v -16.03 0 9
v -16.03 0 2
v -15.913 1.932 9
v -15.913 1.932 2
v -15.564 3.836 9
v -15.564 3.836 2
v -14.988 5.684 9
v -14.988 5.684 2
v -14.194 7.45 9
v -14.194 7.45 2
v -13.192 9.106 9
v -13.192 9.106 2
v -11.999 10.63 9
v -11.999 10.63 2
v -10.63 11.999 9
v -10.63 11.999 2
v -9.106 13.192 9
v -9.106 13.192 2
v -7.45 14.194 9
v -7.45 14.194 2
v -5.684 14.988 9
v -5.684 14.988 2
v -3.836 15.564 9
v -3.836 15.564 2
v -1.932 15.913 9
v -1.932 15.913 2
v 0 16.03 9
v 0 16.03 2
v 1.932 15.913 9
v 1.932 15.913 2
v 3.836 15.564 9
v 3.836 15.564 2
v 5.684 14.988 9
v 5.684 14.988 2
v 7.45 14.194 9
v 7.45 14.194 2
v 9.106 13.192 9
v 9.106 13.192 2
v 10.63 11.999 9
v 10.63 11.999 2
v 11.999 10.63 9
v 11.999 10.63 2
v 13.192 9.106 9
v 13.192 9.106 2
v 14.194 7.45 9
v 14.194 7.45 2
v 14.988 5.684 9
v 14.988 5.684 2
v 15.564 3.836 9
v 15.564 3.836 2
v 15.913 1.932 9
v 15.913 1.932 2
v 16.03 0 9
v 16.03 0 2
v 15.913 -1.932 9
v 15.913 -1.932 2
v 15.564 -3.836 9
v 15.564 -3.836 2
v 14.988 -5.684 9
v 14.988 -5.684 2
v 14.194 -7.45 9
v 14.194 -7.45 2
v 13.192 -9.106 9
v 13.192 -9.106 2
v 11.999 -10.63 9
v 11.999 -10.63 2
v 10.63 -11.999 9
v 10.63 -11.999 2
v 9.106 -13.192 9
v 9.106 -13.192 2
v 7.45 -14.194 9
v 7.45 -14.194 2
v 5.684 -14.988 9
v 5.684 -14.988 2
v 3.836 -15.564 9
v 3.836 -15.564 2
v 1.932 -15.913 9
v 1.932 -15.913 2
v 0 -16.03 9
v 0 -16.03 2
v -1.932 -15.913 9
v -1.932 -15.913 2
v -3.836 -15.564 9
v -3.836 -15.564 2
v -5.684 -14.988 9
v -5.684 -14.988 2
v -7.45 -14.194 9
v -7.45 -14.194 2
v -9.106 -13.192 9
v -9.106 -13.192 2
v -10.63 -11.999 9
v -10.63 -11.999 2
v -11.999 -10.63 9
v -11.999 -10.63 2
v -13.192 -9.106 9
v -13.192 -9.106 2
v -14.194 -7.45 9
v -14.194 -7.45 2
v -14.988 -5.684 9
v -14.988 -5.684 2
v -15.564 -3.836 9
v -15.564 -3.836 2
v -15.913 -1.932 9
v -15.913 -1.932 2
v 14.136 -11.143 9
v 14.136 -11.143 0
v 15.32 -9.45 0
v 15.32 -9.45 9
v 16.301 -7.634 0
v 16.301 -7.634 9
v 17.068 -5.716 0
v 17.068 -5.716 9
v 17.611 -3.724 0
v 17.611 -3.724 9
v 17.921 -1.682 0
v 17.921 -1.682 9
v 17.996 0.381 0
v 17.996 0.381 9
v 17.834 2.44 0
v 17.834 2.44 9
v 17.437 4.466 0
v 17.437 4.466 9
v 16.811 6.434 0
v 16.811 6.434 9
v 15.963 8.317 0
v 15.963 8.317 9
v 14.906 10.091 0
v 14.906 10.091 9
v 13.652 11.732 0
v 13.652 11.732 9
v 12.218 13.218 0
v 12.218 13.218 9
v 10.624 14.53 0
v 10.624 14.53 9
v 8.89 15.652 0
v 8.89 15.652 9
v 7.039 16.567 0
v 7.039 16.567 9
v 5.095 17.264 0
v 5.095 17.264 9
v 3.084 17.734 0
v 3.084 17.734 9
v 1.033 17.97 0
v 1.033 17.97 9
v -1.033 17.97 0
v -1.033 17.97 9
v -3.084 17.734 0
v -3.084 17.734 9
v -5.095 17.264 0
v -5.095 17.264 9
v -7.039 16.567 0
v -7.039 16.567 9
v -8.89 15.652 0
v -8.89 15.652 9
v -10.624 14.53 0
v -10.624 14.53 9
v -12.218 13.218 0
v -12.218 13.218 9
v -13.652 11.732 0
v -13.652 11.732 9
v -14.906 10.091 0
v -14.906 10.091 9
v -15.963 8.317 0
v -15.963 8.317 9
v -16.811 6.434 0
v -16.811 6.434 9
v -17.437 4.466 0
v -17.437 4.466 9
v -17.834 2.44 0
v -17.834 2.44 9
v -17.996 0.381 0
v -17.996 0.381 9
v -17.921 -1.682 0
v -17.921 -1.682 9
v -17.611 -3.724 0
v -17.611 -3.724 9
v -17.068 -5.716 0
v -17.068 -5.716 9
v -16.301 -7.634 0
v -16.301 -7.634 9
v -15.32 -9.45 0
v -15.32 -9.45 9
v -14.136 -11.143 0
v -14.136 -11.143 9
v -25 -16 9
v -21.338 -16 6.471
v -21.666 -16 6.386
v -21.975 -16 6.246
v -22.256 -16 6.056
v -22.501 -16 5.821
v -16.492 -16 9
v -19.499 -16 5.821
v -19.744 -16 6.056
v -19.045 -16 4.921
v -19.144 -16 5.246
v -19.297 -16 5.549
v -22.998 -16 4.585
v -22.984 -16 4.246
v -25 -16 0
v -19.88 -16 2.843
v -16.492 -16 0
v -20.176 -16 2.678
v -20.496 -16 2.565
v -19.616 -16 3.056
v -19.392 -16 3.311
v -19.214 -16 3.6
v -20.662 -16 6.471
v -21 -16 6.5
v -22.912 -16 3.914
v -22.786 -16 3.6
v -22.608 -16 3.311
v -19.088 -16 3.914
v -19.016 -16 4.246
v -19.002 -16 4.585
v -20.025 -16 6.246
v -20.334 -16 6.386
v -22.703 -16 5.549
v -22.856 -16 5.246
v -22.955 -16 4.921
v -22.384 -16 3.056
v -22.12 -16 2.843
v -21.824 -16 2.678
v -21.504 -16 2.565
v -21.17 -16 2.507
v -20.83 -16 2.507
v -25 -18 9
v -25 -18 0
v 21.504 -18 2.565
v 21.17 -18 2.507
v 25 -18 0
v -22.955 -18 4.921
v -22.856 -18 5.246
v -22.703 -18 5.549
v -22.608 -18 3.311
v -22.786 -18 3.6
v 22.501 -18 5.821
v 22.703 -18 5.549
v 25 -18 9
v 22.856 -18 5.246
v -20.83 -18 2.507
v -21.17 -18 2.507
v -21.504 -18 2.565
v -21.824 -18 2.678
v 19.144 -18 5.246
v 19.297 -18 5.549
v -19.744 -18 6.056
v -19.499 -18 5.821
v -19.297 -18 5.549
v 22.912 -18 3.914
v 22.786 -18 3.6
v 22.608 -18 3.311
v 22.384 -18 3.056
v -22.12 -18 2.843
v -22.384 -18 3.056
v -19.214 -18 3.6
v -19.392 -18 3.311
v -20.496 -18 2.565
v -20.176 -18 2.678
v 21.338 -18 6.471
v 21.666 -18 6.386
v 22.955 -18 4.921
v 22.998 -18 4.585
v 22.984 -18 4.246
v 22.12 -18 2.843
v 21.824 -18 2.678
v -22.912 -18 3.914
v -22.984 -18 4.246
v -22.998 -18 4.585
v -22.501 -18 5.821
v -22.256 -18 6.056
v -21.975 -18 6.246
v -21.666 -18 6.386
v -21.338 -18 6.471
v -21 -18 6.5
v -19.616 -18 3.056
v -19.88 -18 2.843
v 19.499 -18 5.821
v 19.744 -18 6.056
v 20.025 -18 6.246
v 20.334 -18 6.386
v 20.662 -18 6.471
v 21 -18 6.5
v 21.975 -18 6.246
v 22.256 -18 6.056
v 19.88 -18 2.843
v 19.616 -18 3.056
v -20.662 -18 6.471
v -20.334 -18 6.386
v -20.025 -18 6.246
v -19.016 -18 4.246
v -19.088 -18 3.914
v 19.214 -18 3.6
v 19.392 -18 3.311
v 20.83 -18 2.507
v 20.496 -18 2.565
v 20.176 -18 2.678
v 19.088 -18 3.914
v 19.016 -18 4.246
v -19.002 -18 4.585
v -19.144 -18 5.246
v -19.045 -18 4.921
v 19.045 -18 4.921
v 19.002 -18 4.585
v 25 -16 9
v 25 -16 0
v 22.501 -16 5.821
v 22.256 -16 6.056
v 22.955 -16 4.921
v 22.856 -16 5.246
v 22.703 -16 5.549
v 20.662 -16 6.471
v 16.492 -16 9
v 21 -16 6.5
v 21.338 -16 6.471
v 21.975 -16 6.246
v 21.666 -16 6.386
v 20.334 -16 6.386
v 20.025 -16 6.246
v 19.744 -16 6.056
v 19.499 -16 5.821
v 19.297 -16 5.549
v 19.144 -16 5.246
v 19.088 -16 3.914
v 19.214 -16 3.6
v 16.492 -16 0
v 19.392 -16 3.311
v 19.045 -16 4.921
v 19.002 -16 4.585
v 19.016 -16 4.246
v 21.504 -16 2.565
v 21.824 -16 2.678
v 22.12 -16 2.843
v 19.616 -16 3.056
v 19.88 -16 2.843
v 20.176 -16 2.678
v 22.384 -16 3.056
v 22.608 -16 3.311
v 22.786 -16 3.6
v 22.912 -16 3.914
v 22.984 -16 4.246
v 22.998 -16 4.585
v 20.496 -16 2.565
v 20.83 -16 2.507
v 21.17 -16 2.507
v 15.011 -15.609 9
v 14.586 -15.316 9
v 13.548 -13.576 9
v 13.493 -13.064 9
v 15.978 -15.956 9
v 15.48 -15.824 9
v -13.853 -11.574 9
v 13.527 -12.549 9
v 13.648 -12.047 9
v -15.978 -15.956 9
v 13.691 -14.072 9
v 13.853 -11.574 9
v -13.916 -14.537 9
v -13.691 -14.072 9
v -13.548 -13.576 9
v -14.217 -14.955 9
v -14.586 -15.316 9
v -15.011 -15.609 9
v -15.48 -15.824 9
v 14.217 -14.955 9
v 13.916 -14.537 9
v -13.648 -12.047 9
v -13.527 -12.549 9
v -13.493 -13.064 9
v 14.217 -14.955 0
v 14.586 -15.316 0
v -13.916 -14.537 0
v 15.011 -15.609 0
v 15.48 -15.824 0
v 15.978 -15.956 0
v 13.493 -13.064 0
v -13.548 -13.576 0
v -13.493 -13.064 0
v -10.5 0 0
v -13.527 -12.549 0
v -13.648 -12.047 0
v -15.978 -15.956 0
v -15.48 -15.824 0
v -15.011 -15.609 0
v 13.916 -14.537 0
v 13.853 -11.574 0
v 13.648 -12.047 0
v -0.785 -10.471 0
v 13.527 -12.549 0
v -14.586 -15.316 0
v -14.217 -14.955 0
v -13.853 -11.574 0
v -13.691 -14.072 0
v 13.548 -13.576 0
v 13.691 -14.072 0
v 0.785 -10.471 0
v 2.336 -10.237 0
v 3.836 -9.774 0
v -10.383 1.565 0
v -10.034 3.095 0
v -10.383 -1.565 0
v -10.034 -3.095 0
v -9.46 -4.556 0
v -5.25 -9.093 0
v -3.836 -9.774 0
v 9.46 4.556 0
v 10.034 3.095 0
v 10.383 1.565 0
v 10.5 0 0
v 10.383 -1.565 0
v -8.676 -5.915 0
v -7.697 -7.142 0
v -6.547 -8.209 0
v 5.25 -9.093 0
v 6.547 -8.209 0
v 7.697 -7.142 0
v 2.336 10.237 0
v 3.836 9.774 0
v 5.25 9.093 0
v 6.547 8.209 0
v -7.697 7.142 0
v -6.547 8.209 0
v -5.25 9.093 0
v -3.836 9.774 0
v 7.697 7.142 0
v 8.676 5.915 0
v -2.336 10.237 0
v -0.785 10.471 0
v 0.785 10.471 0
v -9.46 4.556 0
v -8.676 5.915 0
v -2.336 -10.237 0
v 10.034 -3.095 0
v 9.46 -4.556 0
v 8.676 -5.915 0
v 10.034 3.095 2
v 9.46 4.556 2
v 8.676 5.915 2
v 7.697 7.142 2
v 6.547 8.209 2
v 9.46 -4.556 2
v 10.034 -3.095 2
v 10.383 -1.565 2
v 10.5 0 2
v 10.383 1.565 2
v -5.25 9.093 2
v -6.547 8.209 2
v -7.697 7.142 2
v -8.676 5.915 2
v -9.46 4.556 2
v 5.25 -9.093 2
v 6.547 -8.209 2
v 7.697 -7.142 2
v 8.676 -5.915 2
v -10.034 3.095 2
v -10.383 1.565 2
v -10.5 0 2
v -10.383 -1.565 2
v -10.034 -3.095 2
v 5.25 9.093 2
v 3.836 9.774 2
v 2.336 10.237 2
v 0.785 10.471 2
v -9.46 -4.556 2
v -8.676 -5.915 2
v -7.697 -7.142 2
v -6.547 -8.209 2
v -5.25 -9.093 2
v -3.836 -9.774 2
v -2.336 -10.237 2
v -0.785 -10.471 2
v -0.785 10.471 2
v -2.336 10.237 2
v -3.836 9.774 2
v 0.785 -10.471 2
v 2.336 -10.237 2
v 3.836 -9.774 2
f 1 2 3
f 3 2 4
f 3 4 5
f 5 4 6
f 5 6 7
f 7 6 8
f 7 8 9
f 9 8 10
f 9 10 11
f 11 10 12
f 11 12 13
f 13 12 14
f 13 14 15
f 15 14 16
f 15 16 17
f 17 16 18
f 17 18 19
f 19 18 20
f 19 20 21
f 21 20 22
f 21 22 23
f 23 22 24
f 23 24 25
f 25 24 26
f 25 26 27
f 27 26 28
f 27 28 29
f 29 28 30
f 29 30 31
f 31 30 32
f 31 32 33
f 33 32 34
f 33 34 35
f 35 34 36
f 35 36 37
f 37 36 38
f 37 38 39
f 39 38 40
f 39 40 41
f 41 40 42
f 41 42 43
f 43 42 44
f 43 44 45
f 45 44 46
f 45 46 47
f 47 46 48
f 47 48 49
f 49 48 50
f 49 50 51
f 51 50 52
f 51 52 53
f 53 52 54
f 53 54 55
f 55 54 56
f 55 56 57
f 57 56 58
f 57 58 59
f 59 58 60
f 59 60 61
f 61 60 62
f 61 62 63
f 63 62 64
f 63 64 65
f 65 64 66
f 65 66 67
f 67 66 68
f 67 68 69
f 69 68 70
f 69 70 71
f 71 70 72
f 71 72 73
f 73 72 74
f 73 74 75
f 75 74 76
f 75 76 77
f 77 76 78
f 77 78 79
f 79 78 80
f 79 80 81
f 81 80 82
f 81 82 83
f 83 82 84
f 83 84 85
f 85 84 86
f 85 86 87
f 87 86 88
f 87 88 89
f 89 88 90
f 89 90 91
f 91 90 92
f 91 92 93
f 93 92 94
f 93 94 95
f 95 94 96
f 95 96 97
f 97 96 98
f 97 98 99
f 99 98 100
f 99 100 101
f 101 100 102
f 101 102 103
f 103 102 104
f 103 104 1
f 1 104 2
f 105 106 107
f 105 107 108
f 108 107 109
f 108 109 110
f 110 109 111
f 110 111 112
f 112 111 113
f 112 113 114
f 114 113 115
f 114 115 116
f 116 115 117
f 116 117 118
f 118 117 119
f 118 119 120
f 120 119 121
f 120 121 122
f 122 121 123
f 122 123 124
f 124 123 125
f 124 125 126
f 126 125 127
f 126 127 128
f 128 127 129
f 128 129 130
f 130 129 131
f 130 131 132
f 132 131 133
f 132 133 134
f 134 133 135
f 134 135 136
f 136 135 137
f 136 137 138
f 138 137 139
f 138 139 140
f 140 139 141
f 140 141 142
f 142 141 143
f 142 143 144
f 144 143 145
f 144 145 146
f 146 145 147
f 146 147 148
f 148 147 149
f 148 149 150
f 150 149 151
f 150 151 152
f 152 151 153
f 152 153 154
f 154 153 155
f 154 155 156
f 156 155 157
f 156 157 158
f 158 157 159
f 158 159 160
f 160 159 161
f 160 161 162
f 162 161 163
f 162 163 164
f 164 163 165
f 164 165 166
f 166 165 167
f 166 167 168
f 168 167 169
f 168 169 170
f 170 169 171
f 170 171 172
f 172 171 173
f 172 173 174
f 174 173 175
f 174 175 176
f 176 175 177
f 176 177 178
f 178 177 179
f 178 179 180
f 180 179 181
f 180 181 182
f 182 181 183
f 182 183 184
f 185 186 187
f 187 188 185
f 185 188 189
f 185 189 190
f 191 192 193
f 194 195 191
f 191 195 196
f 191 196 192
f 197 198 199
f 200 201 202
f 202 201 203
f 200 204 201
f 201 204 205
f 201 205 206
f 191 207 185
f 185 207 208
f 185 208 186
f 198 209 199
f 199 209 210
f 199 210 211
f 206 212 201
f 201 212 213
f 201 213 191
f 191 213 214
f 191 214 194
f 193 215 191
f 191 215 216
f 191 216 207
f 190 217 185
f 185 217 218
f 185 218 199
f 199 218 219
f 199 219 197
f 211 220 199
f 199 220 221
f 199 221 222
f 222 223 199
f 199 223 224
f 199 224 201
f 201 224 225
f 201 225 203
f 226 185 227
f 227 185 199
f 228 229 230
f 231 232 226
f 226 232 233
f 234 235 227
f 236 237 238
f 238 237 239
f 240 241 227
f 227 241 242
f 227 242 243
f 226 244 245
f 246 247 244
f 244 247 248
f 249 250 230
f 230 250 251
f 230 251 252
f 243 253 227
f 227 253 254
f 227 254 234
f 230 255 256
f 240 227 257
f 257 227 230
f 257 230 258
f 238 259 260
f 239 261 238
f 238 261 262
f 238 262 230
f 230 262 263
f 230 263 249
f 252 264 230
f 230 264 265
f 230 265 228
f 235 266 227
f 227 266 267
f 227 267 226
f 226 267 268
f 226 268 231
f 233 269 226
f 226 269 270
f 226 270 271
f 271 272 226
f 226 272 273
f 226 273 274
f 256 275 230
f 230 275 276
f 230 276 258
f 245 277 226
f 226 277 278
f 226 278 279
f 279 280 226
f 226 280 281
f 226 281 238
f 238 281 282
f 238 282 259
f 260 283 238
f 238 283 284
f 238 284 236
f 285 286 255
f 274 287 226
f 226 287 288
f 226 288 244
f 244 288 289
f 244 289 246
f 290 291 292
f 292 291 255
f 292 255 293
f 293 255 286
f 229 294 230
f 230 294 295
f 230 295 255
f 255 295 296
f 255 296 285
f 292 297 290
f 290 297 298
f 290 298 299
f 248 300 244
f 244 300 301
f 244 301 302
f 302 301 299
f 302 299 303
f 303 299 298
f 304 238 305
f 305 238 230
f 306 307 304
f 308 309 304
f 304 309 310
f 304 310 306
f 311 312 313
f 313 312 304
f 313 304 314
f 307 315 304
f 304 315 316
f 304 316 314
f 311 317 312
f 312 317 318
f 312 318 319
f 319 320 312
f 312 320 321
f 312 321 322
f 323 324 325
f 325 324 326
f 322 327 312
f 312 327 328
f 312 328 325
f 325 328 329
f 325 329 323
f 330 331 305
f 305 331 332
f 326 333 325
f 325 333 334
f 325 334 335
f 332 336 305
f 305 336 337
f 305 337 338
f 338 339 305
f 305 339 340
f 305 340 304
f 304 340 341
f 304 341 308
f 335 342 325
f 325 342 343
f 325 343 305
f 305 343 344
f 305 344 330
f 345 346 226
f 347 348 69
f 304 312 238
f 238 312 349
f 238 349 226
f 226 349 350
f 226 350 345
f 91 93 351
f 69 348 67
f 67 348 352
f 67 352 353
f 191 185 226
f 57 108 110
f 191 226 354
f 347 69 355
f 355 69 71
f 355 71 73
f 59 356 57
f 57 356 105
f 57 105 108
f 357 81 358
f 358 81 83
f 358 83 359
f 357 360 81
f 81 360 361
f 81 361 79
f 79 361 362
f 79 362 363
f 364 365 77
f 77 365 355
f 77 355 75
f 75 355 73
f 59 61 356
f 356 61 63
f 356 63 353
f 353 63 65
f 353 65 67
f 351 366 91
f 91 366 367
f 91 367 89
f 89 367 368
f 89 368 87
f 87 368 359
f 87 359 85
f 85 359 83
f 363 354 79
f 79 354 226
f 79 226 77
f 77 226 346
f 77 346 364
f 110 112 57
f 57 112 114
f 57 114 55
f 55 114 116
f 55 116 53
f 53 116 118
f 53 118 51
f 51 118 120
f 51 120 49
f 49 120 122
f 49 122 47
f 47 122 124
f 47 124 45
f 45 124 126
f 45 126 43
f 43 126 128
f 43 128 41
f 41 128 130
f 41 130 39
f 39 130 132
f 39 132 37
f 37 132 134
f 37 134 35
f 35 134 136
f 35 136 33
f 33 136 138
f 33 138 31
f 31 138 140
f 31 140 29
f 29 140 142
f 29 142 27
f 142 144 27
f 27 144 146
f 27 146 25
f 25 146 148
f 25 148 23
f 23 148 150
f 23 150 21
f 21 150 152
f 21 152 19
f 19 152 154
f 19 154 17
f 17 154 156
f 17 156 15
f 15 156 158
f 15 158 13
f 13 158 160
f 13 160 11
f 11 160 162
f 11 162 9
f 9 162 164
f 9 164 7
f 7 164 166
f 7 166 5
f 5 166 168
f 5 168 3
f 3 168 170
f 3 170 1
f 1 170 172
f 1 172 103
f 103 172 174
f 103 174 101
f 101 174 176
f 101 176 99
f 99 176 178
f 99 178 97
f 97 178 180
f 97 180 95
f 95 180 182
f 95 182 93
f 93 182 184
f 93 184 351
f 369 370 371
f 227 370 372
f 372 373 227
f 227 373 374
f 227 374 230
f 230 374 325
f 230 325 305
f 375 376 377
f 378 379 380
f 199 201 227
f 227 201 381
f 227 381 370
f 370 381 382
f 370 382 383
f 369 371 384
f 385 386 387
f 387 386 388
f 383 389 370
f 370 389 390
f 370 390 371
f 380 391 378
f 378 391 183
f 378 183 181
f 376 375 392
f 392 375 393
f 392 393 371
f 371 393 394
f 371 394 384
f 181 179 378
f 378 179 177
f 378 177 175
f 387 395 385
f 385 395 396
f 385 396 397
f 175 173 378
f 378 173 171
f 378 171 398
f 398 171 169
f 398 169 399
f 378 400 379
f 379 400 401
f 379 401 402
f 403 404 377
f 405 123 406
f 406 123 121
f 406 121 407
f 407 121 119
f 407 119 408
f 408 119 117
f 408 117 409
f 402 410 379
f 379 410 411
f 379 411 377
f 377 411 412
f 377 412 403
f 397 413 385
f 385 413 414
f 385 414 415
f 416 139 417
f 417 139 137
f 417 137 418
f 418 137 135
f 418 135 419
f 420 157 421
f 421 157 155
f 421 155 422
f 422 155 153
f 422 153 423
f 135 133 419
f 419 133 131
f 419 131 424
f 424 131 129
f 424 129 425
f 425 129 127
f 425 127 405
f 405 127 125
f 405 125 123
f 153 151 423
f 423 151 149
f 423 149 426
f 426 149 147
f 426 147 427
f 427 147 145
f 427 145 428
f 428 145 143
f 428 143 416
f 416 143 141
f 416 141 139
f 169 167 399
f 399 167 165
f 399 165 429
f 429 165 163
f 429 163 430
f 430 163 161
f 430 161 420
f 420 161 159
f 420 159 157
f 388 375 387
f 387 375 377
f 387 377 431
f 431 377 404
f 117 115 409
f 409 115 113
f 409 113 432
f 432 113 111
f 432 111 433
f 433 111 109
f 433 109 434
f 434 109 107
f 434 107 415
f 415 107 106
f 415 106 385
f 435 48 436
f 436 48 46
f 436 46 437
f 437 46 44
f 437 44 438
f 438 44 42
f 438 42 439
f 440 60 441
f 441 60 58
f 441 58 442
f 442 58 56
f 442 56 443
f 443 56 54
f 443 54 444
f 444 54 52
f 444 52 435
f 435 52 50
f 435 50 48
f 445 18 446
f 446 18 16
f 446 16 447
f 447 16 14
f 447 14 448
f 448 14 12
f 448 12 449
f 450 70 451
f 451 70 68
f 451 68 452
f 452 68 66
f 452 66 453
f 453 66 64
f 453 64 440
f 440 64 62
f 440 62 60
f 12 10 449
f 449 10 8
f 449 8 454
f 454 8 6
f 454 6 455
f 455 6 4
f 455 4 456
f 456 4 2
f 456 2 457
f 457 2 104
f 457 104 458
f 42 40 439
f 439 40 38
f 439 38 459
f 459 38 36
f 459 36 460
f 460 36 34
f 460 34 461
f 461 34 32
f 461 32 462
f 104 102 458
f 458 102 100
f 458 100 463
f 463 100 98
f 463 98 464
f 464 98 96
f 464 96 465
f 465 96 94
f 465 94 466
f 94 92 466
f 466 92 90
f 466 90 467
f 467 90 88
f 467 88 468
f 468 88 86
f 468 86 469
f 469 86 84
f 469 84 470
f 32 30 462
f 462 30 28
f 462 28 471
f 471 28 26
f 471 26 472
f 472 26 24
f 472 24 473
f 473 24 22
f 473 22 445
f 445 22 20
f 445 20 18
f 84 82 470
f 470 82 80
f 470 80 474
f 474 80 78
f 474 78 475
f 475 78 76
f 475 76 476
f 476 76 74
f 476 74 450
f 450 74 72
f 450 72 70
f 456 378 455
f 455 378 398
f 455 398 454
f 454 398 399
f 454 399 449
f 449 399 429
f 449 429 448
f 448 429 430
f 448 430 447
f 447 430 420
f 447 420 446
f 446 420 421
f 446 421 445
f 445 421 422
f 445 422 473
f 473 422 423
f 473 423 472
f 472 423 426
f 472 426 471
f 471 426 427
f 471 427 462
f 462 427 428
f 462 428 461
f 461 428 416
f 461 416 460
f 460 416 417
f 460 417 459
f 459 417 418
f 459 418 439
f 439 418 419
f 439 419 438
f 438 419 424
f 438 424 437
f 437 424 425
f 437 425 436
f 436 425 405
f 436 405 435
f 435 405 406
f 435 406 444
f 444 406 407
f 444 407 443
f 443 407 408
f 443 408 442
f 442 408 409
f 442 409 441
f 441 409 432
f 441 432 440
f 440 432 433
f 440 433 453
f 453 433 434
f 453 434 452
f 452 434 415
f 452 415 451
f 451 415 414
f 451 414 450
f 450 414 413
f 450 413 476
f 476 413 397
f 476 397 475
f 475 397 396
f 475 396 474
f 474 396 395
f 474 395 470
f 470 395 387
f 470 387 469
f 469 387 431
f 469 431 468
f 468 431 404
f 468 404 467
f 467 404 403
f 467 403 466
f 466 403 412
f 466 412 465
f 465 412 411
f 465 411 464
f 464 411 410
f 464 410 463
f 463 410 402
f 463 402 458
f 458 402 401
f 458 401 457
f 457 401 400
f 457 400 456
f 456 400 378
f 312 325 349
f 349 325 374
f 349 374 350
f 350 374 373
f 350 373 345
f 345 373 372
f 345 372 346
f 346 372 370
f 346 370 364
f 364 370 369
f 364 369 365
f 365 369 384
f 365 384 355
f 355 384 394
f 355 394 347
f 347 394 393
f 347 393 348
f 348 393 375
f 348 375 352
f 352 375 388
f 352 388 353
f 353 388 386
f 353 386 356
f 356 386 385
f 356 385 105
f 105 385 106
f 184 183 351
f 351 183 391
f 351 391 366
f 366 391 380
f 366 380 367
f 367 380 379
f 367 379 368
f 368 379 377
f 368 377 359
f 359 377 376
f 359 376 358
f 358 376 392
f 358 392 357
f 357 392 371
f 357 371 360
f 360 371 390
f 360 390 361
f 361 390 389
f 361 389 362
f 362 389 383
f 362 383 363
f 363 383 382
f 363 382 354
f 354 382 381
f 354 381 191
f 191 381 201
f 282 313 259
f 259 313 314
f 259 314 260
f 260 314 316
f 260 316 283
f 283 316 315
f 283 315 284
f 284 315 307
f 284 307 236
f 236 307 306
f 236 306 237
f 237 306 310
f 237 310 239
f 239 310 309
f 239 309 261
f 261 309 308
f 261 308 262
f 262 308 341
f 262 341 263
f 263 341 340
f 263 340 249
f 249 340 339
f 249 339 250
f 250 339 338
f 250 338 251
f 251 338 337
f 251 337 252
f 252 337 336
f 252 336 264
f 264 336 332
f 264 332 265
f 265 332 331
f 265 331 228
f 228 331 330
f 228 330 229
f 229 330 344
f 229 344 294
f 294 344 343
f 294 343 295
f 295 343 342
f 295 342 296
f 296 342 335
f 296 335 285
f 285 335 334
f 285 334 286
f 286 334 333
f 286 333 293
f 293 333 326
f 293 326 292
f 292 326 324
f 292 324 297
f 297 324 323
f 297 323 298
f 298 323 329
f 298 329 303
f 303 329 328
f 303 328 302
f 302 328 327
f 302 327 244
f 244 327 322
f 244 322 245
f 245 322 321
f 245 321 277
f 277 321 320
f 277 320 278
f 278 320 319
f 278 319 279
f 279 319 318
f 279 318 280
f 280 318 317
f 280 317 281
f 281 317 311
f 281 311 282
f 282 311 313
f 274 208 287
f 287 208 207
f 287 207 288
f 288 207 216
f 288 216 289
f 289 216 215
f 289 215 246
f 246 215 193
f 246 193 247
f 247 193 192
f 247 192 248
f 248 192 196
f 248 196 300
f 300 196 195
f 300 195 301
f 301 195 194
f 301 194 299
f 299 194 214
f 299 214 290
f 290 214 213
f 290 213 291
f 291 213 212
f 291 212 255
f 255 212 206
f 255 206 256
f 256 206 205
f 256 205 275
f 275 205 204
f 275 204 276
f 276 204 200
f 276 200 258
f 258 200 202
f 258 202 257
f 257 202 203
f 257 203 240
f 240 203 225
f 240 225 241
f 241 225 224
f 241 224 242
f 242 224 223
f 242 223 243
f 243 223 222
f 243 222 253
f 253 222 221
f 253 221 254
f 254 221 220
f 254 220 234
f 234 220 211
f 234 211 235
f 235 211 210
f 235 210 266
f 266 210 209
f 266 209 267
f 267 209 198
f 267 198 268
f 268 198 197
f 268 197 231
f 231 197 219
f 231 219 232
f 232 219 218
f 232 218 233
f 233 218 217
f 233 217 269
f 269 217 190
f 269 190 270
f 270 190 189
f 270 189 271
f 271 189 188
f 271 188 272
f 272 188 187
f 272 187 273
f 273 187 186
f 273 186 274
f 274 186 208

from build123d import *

# Parameters (mm, degrees)
CROQUIS1_R              = 16.03
SALIENTE_EXTRUIR1_DEPTH = 9
CROQUIS2_R              = 10.5
SALIENTE_EXTRUIR2_DEPTH = 2
REDONDEO1_R             = 3
CROQUIS3_R              = 2
CORTAR_EXTRUIR1_DEPTH   = 44.150898021


with BuildPart() as part:
    # Croquis1 → Saliente-Extruir1 (new body)
    with BuildSketch(Plane.XY):
        with BuildLine():
            Line((-8.246211251, -16), (-25, -16))
            Line((-25, -16), (-25, -18))
            Line((-25, -18), (25, -18))
            Line((25, -18), (25, -16))
            Line((25, -16), (8.246211251, -16))
            ThreePointArc((8.246211251, -16), (0, 18), (-8.246211251, -16))
        make_face()
        Circle(CROQUIS1_R, mode=Mode.SUBTRACT)
    extrude(amount=SALIENTE_EXTRUIR1_DEPTH)

    # Croquis2 → Saliente-Extruir2 (add)
    with BuildSketch(Plane(origin=(0, 0, 0), x_dir=(-1, 0, 0), z_dir=(0, 0, -1))):
        with BuildLine():
            Line((-8.246211251, -16), (-25, -16))
            Line((-25, -16), (-25, -18))
            Line((-25, -18), (25, -18))
            Line((25, -18), (25, -16))
            Line((25, -16), (8.246211251, -16))
            ThreePointArc((8.246211251, -16), (0, 18), (-8.246211251, -16))
        make_face()
        Circle(CROQUIS2_R, mode=Mode.SUBTRACT)
    extrude(amount=-SALIENTE_EXTRUIR2_DEPTH)

    # Redondeo1
    redondeo1_edges = [part.edges().sort_by_distance(p)[0] for p in [
        (8.246211251, -16, 4.5),
        (-8.246211251, -16, 4.5),
    ]]
    fillet(redondeo1_edges, radius=REDONDEO1_R)

    # Croquis3 → Cortar-Extruir1 (cut, through all)
    with BuildSketch(Plane(origin=(0, -16, 0), x_dir=(1, 0, 0), z_dir=(0, 1, 0))):
        with Locations(Location((-21, -4.5, 0), (0, 0, 270))):
            Circle(CROQUIS3_R)
        with Locations(Location((21, -4.5, 0), (0, 0, 270))):
            Circle(CROQUIS3_R)
    extrude(amount=-CORTAR_EXTRUIR1_DEPTH, mode=Mode.SUBTRACT)


solid = part.part
